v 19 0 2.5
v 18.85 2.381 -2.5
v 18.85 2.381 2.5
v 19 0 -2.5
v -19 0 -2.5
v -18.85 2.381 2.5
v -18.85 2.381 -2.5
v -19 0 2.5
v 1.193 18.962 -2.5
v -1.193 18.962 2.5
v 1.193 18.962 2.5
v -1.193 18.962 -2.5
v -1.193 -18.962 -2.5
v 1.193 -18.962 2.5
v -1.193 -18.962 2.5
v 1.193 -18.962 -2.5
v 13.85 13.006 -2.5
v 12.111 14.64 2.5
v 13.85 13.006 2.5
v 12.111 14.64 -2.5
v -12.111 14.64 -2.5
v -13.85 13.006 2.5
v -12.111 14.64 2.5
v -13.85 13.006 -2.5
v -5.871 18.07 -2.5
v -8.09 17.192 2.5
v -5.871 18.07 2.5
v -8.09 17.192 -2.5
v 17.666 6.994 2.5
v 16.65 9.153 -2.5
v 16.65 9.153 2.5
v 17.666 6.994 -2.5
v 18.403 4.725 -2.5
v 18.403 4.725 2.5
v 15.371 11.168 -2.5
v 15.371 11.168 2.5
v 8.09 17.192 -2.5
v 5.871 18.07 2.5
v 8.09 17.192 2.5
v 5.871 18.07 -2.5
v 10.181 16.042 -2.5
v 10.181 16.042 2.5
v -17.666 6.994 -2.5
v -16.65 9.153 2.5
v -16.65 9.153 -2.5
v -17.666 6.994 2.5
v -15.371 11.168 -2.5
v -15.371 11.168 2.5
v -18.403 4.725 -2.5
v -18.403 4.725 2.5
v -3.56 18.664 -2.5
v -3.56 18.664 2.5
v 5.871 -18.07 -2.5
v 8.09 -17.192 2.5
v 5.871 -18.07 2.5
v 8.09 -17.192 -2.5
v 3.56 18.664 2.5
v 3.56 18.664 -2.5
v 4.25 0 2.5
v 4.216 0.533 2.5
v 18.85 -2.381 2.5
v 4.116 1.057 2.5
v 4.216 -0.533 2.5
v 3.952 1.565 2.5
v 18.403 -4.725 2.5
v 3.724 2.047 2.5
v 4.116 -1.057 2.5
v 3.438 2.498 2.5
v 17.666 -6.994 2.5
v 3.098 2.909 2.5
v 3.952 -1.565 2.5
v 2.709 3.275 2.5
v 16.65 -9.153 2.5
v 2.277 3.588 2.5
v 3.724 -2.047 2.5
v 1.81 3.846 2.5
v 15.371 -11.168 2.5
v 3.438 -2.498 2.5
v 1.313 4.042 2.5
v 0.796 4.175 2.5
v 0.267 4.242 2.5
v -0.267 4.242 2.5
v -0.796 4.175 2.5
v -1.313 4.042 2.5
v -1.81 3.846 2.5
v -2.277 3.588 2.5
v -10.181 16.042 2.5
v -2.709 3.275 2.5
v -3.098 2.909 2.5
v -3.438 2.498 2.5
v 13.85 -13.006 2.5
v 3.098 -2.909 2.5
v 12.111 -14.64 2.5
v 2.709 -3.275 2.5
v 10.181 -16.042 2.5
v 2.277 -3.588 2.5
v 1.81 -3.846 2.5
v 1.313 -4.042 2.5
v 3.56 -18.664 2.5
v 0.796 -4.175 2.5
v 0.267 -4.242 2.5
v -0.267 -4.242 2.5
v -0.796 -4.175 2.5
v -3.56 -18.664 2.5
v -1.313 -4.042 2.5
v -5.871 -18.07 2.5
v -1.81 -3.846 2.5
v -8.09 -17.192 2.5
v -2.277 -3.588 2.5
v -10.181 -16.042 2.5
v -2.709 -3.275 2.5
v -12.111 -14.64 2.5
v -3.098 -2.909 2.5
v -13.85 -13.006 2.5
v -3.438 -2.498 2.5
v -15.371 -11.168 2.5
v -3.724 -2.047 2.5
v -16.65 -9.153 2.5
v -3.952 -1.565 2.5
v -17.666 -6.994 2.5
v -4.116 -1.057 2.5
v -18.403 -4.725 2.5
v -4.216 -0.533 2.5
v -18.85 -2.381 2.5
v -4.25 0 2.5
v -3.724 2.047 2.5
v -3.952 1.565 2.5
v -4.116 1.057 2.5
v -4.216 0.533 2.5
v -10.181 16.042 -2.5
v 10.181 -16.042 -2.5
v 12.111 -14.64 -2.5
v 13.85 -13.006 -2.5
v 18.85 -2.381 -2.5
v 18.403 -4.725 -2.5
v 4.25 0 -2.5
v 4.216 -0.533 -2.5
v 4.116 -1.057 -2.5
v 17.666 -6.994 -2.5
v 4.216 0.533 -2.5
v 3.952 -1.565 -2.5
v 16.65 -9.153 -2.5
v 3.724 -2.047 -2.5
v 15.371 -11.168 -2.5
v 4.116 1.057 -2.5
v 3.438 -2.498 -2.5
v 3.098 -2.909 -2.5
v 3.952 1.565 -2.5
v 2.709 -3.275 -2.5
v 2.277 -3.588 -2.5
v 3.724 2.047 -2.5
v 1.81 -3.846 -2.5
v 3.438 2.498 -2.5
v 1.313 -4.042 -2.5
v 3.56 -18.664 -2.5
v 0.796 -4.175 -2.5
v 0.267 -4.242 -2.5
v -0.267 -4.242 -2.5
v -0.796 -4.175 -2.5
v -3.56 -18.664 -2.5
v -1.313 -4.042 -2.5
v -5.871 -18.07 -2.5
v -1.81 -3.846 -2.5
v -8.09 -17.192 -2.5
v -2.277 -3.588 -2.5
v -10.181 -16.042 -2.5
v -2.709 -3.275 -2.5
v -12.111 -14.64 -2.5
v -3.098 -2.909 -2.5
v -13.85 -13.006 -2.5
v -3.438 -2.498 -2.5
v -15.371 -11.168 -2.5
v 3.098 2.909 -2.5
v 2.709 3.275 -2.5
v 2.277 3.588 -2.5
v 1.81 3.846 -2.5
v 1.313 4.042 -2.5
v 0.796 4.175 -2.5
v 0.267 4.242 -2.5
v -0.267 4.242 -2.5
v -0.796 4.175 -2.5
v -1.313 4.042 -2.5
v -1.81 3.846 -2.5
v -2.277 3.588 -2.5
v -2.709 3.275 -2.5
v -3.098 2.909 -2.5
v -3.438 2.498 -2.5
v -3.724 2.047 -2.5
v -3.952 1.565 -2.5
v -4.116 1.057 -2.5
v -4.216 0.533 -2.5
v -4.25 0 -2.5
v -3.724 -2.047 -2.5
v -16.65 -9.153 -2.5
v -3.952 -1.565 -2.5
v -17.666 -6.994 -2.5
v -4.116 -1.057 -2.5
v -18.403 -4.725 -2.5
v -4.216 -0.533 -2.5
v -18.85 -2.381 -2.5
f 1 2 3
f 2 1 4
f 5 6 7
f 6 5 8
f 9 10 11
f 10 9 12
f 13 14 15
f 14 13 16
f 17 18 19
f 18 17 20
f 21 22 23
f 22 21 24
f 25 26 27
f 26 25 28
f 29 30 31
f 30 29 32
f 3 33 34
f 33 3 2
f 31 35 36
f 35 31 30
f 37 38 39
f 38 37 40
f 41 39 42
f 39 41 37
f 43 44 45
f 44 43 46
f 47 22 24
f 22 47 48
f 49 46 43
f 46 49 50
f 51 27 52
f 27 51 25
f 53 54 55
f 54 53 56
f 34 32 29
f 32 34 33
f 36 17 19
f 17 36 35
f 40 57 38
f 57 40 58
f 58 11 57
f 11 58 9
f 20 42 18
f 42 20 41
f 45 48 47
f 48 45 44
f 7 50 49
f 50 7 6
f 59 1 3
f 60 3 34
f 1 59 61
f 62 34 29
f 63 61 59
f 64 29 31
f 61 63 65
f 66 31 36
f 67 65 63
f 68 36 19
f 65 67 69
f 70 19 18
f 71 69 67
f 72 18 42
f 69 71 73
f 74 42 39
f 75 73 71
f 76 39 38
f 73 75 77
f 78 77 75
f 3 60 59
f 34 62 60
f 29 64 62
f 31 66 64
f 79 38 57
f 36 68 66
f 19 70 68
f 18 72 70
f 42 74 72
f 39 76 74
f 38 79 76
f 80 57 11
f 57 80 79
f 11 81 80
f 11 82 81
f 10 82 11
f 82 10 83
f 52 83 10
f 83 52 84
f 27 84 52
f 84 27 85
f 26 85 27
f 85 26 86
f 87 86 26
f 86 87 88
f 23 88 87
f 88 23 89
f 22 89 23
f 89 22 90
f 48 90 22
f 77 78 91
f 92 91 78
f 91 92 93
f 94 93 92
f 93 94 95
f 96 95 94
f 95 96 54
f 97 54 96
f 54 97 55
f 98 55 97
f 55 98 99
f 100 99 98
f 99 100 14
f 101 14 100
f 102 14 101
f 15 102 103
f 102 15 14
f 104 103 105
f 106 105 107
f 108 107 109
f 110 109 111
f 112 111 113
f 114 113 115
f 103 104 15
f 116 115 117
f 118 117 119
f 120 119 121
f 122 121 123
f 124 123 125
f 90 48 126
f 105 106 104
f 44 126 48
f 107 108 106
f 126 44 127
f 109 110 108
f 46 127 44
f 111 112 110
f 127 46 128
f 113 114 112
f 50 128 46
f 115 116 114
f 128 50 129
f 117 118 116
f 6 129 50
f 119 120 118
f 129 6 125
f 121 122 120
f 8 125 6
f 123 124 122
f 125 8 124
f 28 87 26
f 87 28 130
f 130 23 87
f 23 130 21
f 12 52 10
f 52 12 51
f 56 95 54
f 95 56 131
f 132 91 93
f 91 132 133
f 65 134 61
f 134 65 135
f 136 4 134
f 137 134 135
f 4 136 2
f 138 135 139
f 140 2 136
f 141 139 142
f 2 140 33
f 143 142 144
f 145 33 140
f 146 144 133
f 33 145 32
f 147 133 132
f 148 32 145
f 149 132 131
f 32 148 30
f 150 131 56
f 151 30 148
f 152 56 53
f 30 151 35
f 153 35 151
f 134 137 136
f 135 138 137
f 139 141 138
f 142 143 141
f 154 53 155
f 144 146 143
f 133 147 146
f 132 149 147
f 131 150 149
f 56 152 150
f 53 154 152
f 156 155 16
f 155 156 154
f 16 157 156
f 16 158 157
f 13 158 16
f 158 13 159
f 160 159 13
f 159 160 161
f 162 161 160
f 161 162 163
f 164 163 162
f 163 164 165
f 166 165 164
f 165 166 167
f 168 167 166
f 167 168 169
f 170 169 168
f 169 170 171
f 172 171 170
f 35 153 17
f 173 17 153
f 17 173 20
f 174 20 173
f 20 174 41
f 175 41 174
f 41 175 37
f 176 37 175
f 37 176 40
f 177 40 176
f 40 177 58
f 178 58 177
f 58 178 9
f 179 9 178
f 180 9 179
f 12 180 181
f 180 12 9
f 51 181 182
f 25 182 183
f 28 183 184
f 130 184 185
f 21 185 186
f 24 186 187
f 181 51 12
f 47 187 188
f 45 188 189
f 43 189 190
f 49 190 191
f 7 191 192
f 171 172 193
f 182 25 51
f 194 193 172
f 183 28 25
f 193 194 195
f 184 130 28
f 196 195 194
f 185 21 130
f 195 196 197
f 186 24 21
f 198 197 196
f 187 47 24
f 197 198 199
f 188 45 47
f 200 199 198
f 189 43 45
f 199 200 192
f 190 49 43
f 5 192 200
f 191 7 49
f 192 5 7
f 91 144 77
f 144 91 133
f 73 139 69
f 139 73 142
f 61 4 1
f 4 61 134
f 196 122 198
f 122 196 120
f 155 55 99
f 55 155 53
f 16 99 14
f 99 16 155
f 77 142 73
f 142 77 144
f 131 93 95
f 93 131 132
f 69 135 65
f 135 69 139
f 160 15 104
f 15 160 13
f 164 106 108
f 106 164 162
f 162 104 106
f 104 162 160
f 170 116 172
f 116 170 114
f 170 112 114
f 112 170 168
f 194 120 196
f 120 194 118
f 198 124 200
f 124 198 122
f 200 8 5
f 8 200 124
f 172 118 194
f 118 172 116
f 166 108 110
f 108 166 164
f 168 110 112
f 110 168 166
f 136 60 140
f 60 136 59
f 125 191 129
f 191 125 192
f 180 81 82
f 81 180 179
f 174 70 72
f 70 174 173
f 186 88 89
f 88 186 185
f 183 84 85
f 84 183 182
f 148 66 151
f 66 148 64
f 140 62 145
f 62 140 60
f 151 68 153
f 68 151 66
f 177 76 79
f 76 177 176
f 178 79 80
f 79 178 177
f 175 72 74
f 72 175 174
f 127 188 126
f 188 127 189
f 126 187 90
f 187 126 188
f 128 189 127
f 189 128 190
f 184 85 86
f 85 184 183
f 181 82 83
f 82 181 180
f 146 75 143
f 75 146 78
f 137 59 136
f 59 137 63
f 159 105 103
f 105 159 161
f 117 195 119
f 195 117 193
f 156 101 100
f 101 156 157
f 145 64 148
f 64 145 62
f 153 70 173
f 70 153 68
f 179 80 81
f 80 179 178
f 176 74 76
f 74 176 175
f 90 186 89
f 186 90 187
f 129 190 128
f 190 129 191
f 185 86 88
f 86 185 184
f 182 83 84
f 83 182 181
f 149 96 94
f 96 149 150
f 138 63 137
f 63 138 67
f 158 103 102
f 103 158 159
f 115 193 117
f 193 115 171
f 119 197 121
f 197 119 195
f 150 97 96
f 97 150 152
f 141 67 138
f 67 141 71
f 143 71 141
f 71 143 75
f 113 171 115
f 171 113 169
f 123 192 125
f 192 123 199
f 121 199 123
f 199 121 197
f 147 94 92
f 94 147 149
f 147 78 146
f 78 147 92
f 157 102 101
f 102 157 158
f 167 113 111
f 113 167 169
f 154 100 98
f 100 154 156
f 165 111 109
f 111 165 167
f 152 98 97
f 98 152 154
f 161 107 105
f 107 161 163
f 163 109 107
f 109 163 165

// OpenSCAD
$fn = 50;


difference() {
	union() {
		translate(v = [0, 0, -2.5000000000]) {
			cylinder(h = 5, r = 19.0000000000);
		}
	}
	union() {
		translate(v = [0, 0, -100.0000000000]) {
			cylinder(h = 200, r = 4.2500000000);
		}
	}
}
